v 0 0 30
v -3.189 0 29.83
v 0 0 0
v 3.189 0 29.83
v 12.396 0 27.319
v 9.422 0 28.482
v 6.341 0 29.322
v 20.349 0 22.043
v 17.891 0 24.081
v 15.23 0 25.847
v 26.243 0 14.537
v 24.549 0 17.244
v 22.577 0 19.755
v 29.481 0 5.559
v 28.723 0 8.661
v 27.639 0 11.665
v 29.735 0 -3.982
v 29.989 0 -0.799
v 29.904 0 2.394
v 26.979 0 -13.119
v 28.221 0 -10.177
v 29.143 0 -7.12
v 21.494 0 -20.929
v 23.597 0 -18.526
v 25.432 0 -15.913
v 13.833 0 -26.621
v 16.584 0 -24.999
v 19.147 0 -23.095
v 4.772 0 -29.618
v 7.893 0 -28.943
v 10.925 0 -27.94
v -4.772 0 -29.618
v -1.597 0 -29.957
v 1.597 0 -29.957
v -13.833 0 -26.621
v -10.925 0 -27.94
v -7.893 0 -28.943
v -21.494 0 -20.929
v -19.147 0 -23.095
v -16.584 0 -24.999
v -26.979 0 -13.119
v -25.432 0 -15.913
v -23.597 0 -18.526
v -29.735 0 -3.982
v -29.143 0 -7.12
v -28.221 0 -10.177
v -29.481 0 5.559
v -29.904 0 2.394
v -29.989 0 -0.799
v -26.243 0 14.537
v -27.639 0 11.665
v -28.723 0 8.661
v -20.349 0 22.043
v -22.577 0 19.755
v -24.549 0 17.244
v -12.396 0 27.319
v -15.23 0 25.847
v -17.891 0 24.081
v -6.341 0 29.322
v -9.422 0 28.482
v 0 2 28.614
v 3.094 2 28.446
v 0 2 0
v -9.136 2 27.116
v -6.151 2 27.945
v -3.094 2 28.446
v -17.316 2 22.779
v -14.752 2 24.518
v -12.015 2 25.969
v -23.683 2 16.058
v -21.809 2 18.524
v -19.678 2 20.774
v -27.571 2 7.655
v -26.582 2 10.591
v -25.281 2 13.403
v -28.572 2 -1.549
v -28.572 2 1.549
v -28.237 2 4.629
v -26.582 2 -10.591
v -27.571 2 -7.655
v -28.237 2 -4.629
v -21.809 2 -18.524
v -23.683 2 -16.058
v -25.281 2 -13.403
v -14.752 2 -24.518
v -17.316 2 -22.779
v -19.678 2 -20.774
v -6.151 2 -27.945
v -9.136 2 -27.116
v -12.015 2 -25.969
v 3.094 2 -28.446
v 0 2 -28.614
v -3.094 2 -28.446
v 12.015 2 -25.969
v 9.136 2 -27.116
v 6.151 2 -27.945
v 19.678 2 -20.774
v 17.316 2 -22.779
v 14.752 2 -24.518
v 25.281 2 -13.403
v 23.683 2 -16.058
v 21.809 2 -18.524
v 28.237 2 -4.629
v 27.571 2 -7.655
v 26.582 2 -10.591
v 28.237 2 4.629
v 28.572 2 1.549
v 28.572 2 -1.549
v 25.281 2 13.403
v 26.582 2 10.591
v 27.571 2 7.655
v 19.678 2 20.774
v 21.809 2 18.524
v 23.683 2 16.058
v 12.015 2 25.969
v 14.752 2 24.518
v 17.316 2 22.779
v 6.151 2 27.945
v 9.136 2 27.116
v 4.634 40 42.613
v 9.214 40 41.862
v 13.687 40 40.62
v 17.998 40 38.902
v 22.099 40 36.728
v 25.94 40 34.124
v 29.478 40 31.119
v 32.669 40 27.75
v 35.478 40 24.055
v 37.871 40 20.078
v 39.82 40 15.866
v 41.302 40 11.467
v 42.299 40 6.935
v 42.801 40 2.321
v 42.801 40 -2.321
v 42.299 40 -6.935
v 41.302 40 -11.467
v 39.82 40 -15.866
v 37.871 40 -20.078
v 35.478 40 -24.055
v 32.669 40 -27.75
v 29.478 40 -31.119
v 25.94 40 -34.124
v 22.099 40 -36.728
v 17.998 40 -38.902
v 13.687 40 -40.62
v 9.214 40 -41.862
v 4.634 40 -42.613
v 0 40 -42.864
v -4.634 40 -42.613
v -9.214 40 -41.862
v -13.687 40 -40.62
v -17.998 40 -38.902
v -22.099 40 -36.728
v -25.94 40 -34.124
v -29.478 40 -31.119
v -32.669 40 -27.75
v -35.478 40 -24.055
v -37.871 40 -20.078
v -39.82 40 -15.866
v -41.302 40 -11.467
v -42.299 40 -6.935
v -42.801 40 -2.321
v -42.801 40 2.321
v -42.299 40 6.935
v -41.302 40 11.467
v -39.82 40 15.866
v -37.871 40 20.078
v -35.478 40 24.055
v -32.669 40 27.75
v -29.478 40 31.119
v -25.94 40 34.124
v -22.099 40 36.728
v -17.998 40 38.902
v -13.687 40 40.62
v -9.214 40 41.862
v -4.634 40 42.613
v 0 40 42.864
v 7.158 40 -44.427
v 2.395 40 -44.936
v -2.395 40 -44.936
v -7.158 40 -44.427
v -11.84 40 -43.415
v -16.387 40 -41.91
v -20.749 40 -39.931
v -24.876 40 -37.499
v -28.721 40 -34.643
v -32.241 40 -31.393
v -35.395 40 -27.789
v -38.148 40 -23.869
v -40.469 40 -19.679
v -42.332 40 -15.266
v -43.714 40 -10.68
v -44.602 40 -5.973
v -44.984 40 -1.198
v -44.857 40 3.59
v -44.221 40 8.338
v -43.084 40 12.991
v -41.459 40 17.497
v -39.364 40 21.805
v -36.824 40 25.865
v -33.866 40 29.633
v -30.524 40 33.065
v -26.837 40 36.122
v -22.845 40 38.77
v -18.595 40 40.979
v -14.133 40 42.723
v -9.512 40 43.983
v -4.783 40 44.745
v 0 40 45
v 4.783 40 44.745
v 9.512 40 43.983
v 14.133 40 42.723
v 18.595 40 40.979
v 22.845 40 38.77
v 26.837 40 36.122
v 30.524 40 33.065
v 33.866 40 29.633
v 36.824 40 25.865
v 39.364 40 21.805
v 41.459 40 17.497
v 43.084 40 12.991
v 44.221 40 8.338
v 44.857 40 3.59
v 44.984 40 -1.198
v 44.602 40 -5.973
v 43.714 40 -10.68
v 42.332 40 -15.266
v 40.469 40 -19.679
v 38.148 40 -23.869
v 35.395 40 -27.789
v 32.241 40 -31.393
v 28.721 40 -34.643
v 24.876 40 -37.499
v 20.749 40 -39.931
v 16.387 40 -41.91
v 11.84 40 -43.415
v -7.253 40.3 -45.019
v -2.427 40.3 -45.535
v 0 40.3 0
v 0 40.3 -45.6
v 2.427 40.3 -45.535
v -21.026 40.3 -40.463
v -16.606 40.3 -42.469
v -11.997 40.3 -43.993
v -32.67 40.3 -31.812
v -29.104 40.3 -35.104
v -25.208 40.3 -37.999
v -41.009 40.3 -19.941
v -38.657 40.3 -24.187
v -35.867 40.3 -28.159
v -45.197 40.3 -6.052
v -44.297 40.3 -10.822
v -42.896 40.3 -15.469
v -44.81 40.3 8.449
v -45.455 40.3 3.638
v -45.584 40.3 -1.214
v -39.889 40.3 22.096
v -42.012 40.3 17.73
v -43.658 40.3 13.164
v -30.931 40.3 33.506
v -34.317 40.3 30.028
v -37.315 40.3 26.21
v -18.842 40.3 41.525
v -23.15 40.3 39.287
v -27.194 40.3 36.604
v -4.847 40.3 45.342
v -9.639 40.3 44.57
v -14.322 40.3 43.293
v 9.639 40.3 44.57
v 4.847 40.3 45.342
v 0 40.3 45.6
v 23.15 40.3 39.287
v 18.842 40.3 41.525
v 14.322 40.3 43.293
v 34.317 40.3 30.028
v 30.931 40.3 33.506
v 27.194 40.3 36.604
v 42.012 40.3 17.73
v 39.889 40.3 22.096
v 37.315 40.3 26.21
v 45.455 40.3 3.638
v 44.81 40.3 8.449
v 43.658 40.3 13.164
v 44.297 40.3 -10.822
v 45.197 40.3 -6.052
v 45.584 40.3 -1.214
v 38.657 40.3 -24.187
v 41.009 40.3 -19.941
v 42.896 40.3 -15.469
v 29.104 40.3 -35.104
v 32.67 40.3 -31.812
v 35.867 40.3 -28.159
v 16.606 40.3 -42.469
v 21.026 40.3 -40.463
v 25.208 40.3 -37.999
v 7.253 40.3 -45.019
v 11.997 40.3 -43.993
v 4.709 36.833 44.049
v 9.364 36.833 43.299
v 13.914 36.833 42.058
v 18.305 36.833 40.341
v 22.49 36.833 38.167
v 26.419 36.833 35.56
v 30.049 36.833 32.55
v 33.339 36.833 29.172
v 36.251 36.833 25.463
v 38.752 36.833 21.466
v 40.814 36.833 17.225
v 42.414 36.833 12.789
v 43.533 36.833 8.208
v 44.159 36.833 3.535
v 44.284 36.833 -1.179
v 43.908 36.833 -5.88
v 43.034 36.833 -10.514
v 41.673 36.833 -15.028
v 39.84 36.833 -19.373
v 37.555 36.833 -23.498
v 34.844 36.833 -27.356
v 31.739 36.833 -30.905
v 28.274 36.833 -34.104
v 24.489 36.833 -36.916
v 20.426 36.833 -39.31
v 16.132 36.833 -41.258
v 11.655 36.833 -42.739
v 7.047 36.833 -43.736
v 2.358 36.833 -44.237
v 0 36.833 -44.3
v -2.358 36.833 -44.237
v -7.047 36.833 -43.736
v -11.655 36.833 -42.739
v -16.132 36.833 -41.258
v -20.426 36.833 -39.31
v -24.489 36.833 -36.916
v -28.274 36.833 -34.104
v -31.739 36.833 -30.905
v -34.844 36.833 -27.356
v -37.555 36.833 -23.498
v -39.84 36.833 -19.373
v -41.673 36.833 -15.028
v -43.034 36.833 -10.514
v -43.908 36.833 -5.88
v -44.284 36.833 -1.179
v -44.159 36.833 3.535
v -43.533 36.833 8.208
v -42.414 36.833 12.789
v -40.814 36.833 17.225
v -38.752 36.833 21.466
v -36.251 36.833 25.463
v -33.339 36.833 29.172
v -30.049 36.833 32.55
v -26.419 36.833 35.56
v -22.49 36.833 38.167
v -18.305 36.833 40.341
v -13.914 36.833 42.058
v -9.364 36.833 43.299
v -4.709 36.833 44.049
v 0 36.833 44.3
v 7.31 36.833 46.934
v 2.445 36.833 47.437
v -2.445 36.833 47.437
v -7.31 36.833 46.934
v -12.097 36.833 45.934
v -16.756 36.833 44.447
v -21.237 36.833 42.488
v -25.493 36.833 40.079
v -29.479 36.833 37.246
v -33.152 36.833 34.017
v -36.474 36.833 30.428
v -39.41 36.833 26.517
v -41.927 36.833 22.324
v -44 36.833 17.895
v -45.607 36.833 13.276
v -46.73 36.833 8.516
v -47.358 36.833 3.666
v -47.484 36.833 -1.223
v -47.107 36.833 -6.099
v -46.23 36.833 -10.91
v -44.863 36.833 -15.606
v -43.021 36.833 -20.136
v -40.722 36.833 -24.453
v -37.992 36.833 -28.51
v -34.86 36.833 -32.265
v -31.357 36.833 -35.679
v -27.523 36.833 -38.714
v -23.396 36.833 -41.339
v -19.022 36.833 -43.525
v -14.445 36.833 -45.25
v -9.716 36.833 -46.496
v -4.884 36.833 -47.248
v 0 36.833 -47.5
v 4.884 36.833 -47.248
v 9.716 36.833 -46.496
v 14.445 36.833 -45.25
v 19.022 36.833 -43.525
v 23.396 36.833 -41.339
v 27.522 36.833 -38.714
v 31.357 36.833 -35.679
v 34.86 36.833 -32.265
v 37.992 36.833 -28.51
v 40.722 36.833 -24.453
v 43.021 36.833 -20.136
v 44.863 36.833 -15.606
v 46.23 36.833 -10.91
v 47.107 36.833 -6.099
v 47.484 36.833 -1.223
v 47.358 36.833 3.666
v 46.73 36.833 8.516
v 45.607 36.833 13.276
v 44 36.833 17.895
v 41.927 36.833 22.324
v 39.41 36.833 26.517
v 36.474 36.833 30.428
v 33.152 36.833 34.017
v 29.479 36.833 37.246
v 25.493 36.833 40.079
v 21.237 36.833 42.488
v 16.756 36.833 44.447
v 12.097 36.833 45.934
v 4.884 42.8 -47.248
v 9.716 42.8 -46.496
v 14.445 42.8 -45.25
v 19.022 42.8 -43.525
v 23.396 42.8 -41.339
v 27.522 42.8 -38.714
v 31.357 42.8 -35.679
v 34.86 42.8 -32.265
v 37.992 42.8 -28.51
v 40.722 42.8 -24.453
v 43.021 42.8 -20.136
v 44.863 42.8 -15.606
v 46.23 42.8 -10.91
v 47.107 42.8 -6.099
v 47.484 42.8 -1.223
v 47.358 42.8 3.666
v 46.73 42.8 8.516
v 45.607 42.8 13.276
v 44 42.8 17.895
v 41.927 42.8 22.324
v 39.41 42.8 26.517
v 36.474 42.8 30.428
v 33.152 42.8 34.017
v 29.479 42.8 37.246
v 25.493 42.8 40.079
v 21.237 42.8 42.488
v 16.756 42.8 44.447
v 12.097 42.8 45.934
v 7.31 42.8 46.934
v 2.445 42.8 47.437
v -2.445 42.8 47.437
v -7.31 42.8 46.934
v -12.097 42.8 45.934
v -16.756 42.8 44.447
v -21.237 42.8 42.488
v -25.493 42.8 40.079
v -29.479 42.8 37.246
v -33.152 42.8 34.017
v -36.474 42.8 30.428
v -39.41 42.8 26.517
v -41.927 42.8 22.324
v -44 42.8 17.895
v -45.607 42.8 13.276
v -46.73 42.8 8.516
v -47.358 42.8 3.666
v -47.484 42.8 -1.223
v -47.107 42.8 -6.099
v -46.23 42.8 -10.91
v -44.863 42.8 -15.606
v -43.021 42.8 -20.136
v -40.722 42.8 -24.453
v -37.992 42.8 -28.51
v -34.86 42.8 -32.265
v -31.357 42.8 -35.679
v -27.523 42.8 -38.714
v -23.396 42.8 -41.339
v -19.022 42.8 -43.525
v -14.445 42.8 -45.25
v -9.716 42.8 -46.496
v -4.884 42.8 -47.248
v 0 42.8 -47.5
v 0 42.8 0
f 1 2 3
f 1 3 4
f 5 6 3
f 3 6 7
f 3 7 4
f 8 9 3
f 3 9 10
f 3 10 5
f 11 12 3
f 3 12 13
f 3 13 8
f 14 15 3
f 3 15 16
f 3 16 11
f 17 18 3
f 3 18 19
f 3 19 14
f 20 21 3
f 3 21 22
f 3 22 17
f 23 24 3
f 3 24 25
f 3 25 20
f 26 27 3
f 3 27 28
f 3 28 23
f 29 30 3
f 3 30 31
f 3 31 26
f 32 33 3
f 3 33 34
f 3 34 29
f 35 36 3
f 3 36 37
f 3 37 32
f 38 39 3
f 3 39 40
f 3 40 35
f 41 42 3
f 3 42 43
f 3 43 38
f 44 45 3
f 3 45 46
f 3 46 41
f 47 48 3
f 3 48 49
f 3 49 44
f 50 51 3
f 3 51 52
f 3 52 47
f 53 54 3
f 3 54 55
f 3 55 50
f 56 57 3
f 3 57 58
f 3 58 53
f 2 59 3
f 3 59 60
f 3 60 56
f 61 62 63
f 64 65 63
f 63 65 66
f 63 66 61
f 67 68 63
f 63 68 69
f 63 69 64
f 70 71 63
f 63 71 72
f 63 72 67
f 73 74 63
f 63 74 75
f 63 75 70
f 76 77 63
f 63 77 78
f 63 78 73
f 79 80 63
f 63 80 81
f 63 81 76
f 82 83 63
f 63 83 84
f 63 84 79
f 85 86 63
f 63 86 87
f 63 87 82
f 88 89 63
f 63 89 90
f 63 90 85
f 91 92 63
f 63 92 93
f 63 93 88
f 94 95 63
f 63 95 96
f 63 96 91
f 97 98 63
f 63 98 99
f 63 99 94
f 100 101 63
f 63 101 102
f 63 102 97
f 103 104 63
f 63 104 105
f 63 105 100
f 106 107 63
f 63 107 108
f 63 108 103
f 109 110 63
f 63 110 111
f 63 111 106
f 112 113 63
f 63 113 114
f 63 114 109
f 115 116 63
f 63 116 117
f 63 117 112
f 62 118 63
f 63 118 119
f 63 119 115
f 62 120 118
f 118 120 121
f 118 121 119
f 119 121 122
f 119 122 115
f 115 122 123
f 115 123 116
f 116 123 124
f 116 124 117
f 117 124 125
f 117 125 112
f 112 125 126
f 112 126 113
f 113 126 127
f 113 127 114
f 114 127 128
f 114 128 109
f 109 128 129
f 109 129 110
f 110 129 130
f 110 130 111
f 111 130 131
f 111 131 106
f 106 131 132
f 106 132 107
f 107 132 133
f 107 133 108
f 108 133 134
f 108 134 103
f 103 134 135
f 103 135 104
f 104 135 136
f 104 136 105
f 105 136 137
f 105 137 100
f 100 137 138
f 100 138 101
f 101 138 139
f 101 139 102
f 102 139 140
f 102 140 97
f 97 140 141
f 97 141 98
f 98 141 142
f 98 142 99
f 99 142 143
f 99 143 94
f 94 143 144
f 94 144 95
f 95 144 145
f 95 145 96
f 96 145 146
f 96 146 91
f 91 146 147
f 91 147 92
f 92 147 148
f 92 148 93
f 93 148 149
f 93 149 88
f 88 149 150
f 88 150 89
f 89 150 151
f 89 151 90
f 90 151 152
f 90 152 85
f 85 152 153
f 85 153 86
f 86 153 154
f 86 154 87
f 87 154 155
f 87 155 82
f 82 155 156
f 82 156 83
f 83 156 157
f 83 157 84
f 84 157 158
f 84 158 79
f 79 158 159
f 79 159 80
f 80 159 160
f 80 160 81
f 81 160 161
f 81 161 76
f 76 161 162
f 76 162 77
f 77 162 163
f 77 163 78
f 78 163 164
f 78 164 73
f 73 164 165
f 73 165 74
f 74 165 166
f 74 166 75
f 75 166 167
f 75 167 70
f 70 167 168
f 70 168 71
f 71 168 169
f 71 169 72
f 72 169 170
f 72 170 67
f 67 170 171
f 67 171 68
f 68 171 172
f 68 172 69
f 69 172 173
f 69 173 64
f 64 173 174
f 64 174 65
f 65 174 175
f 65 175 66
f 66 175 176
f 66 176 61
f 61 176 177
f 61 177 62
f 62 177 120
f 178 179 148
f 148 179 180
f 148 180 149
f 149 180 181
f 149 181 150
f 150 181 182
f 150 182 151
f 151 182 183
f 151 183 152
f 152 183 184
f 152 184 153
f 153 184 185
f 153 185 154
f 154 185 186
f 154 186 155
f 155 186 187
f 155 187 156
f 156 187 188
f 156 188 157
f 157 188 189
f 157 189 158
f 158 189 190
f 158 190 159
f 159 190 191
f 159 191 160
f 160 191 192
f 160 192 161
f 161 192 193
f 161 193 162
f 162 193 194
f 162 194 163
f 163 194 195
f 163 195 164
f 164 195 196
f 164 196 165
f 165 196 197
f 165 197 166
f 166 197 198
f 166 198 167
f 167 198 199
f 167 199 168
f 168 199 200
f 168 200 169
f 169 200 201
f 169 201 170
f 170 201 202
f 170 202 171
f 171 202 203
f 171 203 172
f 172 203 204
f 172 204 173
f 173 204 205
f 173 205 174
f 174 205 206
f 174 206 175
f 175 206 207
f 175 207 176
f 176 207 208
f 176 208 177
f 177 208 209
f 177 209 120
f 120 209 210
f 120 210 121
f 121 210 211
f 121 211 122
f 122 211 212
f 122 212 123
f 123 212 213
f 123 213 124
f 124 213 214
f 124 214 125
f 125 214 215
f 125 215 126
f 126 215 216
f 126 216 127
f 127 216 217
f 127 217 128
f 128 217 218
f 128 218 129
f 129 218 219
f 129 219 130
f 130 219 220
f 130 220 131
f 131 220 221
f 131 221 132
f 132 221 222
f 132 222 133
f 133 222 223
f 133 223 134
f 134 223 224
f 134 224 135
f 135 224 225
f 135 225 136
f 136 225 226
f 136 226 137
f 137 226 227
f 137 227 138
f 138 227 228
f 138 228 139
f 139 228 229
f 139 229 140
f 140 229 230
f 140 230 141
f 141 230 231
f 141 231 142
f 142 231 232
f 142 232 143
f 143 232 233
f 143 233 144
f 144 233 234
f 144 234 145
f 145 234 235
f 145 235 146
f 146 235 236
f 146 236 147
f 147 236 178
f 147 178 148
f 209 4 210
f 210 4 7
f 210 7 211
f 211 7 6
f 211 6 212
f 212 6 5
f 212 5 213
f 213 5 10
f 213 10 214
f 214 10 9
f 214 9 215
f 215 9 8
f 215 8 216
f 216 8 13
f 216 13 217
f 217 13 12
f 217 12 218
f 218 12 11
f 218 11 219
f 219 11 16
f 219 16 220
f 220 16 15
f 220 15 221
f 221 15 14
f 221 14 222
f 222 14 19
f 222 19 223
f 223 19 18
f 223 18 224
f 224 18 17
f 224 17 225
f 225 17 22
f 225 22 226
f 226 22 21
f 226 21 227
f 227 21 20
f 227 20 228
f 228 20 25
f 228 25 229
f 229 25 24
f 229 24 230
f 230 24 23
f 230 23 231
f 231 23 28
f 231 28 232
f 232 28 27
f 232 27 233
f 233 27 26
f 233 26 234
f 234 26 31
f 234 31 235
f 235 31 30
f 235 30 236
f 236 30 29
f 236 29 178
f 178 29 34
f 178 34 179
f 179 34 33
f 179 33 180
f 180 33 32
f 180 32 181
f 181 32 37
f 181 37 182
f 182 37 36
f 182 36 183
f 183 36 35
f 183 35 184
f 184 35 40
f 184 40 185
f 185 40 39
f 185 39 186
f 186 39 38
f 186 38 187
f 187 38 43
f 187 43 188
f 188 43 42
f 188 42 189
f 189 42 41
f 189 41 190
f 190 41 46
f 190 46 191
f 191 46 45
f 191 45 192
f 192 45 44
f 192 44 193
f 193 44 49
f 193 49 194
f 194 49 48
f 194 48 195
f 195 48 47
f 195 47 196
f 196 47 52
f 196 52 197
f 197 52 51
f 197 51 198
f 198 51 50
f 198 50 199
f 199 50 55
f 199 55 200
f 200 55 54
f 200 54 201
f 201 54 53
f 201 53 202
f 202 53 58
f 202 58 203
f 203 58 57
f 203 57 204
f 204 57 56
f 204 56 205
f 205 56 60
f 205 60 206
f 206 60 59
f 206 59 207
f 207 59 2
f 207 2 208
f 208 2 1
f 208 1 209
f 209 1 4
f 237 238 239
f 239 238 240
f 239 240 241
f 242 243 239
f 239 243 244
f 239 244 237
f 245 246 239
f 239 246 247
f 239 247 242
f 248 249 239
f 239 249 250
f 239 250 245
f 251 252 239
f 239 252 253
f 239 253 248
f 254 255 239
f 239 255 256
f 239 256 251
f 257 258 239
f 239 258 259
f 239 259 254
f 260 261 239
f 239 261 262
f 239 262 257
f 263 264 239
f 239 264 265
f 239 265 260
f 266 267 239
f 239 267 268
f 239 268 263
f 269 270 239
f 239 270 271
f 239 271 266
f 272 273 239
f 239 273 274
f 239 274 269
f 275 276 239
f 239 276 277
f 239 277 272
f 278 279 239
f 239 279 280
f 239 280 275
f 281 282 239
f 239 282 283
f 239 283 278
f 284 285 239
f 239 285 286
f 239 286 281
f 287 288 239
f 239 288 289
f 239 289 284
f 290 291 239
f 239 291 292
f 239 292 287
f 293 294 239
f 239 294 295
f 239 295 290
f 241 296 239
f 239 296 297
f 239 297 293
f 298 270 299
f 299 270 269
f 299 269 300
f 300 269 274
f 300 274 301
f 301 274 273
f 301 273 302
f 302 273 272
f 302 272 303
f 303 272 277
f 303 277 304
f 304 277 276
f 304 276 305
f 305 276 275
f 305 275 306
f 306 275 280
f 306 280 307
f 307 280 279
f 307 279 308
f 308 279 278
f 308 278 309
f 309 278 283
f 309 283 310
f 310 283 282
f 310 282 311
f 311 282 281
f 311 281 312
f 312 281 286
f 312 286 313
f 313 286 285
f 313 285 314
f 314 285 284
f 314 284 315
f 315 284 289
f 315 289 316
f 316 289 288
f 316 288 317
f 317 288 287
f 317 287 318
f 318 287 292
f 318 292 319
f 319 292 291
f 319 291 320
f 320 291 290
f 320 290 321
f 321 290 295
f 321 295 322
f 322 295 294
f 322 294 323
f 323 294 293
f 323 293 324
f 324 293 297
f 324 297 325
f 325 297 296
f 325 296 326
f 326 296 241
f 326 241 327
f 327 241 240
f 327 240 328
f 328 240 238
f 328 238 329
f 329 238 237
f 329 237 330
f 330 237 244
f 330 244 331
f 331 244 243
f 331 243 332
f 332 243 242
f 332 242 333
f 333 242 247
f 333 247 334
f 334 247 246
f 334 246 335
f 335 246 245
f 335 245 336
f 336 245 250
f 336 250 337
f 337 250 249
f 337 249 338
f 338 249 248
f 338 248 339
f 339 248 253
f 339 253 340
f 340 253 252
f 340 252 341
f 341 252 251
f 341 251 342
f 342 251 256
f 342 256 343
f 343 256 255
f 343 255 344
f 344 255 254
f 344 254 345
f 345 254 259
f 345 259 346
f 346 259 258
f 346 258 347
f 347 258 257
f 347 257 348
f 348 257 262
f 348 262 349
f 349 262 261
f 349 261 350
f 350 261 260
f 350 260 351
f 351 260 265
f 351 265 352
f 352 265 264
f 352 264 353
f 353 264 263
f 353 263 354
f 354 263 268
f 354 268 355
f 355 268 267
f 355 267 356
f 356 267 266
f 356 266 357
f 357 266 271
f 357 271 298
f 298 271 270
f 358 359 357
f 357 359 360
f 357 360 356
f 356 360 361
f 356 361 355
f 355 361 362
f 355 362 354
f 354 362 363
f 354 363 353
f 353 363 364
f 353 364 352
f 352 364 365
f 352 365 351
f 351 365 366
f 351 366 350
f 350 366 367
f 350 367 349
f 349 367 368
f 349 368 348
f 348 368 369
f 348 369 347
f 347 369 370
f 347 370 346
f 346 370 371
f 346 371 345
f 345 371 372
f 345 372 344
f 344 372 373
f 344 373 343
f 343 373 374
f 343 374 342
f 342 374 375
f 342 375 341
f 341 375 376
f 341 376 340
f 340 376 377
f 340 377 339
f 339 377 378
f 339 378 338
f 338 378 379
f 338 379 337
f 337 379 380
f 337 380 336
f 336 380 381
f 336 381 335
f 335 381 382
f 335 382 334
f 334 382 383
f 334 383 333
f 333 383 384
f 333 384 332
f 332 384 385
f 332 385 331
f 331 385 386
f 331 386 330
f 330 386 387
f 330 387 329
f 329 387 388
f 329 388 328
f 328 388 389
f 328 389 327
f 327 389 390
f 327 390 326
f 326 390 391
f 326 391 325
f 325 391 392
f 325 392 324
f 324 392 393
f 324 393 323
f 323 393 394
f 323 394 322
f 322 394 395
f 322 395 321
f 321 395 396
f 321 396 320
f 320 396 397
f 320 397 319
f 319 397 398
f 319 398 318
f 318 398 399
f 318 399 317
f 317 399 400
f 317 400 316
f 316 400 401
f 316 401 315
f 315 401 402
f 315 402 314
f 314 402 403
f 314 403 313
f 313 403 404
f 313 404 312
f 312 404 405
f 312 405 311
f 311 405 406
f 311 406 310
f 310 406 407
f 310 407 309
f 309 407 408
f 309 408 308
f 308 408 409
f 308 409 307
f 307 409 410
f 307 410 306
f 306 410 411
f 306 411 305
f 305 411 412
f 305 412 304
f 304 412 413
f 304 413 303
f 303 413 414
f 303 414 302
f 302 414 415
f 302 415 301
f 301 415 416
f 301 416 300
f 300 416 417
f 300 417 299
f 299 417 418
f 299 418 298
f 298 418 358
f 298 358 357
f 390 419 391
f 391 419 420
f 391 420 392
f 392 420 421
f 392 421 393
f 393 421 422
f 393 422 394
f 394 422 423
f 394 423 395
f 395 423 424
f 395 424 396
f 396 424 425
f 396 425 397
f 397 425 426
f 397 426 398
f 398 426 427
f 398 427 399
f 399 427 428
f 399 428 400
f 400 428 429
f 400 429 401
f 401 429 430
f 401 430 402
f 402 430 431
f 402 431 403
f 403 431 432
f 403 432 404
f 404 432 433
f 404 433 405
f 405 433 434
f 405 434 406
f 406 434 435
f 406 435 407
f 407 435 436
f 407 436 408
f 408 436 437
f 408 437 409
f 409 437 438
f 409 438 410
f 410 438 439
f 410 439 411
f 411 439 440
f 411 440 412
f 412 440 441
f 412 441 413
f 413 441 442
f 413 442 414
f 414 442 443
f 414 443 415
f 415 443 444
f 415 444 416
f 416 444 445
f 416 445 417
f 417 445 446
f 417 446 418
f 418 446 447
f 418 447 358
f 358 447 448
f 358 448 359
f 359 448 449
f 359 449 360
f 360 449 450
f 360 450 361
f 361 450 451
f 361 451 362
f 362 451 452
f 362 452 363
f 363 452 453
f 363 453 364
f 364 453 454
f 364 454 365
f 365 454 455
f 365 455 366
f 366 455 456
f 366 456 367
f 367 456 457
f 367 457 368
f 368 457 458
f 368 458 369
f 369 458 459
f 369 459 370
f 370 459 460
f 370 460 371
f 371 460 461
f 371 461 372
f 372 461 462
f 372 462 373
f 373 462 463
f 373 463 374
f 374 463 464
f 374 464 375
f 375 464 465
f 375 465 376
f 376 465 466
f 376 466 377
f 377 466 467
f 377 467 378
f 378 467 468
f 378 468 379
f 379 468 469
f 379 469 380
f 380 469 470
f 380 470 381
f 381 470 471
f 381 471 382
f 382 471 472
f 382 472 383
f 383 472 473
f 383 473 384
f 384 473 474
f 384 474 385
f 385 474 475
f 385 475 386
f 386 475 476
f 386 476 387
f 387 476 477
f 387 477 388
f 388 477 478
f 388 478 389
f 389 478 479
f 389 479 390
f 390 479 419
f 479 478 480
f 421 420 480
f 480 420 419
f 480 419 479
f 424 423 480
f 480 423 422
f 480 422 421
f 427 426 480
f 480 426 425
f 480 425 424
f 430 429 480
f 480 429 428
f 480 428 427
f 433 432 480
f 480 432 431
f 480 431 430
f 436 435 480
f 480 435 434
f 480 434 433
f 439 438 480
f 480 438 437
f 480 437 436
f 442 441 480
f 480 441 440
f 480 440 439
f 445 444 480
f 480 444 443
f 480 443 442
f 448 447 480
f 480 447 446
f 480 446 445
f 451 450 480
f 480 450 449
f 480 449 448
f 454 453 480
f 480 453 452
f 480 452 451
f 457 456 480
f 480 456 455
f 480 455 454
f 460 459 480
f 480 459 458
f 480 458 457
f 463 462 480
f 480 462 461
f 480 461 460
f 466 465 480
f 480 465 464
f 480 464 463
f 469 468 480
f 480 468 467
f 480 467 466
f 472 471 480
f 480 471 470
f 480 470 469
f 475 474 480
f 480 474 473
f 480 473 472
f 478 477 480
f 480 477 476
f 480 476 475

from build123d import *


with BuildPart() as part:
    # Sketch1 → Revolve1 (revolve)
    with BuildSketch(Plane(origin=(0, 0, 0), x_dir=(0, 0, -1), z_dir=(1, 0, 0))):
        Polygon((0, 2), (0, 0), (30, 0), (45, 40), (42.863999064, 40), (28.613999064, 2), align=None)
    revolve(axis=Axis((0, 2, 0), (0, -1, 0)))


with BuildPart() as body_2:
    # Sketch2 → Revolve2 (revolve)
    with BuildSketch(Plane(origin=(0, 0, 0), x_dir=(0, 0, -1), z_dir=(1, 0, 0))):
        Polygon((47.5, 42.8), (0, 42.8), (0, 40.3), (45.6, 40.3), (44.3, 36.833333333), (47.5, 36.833333333), align=None)
    revolve(axis=Axis((0, 40.3, 0), (0, 1, 0)))


solid = Compound([part.part, body_2.part])
